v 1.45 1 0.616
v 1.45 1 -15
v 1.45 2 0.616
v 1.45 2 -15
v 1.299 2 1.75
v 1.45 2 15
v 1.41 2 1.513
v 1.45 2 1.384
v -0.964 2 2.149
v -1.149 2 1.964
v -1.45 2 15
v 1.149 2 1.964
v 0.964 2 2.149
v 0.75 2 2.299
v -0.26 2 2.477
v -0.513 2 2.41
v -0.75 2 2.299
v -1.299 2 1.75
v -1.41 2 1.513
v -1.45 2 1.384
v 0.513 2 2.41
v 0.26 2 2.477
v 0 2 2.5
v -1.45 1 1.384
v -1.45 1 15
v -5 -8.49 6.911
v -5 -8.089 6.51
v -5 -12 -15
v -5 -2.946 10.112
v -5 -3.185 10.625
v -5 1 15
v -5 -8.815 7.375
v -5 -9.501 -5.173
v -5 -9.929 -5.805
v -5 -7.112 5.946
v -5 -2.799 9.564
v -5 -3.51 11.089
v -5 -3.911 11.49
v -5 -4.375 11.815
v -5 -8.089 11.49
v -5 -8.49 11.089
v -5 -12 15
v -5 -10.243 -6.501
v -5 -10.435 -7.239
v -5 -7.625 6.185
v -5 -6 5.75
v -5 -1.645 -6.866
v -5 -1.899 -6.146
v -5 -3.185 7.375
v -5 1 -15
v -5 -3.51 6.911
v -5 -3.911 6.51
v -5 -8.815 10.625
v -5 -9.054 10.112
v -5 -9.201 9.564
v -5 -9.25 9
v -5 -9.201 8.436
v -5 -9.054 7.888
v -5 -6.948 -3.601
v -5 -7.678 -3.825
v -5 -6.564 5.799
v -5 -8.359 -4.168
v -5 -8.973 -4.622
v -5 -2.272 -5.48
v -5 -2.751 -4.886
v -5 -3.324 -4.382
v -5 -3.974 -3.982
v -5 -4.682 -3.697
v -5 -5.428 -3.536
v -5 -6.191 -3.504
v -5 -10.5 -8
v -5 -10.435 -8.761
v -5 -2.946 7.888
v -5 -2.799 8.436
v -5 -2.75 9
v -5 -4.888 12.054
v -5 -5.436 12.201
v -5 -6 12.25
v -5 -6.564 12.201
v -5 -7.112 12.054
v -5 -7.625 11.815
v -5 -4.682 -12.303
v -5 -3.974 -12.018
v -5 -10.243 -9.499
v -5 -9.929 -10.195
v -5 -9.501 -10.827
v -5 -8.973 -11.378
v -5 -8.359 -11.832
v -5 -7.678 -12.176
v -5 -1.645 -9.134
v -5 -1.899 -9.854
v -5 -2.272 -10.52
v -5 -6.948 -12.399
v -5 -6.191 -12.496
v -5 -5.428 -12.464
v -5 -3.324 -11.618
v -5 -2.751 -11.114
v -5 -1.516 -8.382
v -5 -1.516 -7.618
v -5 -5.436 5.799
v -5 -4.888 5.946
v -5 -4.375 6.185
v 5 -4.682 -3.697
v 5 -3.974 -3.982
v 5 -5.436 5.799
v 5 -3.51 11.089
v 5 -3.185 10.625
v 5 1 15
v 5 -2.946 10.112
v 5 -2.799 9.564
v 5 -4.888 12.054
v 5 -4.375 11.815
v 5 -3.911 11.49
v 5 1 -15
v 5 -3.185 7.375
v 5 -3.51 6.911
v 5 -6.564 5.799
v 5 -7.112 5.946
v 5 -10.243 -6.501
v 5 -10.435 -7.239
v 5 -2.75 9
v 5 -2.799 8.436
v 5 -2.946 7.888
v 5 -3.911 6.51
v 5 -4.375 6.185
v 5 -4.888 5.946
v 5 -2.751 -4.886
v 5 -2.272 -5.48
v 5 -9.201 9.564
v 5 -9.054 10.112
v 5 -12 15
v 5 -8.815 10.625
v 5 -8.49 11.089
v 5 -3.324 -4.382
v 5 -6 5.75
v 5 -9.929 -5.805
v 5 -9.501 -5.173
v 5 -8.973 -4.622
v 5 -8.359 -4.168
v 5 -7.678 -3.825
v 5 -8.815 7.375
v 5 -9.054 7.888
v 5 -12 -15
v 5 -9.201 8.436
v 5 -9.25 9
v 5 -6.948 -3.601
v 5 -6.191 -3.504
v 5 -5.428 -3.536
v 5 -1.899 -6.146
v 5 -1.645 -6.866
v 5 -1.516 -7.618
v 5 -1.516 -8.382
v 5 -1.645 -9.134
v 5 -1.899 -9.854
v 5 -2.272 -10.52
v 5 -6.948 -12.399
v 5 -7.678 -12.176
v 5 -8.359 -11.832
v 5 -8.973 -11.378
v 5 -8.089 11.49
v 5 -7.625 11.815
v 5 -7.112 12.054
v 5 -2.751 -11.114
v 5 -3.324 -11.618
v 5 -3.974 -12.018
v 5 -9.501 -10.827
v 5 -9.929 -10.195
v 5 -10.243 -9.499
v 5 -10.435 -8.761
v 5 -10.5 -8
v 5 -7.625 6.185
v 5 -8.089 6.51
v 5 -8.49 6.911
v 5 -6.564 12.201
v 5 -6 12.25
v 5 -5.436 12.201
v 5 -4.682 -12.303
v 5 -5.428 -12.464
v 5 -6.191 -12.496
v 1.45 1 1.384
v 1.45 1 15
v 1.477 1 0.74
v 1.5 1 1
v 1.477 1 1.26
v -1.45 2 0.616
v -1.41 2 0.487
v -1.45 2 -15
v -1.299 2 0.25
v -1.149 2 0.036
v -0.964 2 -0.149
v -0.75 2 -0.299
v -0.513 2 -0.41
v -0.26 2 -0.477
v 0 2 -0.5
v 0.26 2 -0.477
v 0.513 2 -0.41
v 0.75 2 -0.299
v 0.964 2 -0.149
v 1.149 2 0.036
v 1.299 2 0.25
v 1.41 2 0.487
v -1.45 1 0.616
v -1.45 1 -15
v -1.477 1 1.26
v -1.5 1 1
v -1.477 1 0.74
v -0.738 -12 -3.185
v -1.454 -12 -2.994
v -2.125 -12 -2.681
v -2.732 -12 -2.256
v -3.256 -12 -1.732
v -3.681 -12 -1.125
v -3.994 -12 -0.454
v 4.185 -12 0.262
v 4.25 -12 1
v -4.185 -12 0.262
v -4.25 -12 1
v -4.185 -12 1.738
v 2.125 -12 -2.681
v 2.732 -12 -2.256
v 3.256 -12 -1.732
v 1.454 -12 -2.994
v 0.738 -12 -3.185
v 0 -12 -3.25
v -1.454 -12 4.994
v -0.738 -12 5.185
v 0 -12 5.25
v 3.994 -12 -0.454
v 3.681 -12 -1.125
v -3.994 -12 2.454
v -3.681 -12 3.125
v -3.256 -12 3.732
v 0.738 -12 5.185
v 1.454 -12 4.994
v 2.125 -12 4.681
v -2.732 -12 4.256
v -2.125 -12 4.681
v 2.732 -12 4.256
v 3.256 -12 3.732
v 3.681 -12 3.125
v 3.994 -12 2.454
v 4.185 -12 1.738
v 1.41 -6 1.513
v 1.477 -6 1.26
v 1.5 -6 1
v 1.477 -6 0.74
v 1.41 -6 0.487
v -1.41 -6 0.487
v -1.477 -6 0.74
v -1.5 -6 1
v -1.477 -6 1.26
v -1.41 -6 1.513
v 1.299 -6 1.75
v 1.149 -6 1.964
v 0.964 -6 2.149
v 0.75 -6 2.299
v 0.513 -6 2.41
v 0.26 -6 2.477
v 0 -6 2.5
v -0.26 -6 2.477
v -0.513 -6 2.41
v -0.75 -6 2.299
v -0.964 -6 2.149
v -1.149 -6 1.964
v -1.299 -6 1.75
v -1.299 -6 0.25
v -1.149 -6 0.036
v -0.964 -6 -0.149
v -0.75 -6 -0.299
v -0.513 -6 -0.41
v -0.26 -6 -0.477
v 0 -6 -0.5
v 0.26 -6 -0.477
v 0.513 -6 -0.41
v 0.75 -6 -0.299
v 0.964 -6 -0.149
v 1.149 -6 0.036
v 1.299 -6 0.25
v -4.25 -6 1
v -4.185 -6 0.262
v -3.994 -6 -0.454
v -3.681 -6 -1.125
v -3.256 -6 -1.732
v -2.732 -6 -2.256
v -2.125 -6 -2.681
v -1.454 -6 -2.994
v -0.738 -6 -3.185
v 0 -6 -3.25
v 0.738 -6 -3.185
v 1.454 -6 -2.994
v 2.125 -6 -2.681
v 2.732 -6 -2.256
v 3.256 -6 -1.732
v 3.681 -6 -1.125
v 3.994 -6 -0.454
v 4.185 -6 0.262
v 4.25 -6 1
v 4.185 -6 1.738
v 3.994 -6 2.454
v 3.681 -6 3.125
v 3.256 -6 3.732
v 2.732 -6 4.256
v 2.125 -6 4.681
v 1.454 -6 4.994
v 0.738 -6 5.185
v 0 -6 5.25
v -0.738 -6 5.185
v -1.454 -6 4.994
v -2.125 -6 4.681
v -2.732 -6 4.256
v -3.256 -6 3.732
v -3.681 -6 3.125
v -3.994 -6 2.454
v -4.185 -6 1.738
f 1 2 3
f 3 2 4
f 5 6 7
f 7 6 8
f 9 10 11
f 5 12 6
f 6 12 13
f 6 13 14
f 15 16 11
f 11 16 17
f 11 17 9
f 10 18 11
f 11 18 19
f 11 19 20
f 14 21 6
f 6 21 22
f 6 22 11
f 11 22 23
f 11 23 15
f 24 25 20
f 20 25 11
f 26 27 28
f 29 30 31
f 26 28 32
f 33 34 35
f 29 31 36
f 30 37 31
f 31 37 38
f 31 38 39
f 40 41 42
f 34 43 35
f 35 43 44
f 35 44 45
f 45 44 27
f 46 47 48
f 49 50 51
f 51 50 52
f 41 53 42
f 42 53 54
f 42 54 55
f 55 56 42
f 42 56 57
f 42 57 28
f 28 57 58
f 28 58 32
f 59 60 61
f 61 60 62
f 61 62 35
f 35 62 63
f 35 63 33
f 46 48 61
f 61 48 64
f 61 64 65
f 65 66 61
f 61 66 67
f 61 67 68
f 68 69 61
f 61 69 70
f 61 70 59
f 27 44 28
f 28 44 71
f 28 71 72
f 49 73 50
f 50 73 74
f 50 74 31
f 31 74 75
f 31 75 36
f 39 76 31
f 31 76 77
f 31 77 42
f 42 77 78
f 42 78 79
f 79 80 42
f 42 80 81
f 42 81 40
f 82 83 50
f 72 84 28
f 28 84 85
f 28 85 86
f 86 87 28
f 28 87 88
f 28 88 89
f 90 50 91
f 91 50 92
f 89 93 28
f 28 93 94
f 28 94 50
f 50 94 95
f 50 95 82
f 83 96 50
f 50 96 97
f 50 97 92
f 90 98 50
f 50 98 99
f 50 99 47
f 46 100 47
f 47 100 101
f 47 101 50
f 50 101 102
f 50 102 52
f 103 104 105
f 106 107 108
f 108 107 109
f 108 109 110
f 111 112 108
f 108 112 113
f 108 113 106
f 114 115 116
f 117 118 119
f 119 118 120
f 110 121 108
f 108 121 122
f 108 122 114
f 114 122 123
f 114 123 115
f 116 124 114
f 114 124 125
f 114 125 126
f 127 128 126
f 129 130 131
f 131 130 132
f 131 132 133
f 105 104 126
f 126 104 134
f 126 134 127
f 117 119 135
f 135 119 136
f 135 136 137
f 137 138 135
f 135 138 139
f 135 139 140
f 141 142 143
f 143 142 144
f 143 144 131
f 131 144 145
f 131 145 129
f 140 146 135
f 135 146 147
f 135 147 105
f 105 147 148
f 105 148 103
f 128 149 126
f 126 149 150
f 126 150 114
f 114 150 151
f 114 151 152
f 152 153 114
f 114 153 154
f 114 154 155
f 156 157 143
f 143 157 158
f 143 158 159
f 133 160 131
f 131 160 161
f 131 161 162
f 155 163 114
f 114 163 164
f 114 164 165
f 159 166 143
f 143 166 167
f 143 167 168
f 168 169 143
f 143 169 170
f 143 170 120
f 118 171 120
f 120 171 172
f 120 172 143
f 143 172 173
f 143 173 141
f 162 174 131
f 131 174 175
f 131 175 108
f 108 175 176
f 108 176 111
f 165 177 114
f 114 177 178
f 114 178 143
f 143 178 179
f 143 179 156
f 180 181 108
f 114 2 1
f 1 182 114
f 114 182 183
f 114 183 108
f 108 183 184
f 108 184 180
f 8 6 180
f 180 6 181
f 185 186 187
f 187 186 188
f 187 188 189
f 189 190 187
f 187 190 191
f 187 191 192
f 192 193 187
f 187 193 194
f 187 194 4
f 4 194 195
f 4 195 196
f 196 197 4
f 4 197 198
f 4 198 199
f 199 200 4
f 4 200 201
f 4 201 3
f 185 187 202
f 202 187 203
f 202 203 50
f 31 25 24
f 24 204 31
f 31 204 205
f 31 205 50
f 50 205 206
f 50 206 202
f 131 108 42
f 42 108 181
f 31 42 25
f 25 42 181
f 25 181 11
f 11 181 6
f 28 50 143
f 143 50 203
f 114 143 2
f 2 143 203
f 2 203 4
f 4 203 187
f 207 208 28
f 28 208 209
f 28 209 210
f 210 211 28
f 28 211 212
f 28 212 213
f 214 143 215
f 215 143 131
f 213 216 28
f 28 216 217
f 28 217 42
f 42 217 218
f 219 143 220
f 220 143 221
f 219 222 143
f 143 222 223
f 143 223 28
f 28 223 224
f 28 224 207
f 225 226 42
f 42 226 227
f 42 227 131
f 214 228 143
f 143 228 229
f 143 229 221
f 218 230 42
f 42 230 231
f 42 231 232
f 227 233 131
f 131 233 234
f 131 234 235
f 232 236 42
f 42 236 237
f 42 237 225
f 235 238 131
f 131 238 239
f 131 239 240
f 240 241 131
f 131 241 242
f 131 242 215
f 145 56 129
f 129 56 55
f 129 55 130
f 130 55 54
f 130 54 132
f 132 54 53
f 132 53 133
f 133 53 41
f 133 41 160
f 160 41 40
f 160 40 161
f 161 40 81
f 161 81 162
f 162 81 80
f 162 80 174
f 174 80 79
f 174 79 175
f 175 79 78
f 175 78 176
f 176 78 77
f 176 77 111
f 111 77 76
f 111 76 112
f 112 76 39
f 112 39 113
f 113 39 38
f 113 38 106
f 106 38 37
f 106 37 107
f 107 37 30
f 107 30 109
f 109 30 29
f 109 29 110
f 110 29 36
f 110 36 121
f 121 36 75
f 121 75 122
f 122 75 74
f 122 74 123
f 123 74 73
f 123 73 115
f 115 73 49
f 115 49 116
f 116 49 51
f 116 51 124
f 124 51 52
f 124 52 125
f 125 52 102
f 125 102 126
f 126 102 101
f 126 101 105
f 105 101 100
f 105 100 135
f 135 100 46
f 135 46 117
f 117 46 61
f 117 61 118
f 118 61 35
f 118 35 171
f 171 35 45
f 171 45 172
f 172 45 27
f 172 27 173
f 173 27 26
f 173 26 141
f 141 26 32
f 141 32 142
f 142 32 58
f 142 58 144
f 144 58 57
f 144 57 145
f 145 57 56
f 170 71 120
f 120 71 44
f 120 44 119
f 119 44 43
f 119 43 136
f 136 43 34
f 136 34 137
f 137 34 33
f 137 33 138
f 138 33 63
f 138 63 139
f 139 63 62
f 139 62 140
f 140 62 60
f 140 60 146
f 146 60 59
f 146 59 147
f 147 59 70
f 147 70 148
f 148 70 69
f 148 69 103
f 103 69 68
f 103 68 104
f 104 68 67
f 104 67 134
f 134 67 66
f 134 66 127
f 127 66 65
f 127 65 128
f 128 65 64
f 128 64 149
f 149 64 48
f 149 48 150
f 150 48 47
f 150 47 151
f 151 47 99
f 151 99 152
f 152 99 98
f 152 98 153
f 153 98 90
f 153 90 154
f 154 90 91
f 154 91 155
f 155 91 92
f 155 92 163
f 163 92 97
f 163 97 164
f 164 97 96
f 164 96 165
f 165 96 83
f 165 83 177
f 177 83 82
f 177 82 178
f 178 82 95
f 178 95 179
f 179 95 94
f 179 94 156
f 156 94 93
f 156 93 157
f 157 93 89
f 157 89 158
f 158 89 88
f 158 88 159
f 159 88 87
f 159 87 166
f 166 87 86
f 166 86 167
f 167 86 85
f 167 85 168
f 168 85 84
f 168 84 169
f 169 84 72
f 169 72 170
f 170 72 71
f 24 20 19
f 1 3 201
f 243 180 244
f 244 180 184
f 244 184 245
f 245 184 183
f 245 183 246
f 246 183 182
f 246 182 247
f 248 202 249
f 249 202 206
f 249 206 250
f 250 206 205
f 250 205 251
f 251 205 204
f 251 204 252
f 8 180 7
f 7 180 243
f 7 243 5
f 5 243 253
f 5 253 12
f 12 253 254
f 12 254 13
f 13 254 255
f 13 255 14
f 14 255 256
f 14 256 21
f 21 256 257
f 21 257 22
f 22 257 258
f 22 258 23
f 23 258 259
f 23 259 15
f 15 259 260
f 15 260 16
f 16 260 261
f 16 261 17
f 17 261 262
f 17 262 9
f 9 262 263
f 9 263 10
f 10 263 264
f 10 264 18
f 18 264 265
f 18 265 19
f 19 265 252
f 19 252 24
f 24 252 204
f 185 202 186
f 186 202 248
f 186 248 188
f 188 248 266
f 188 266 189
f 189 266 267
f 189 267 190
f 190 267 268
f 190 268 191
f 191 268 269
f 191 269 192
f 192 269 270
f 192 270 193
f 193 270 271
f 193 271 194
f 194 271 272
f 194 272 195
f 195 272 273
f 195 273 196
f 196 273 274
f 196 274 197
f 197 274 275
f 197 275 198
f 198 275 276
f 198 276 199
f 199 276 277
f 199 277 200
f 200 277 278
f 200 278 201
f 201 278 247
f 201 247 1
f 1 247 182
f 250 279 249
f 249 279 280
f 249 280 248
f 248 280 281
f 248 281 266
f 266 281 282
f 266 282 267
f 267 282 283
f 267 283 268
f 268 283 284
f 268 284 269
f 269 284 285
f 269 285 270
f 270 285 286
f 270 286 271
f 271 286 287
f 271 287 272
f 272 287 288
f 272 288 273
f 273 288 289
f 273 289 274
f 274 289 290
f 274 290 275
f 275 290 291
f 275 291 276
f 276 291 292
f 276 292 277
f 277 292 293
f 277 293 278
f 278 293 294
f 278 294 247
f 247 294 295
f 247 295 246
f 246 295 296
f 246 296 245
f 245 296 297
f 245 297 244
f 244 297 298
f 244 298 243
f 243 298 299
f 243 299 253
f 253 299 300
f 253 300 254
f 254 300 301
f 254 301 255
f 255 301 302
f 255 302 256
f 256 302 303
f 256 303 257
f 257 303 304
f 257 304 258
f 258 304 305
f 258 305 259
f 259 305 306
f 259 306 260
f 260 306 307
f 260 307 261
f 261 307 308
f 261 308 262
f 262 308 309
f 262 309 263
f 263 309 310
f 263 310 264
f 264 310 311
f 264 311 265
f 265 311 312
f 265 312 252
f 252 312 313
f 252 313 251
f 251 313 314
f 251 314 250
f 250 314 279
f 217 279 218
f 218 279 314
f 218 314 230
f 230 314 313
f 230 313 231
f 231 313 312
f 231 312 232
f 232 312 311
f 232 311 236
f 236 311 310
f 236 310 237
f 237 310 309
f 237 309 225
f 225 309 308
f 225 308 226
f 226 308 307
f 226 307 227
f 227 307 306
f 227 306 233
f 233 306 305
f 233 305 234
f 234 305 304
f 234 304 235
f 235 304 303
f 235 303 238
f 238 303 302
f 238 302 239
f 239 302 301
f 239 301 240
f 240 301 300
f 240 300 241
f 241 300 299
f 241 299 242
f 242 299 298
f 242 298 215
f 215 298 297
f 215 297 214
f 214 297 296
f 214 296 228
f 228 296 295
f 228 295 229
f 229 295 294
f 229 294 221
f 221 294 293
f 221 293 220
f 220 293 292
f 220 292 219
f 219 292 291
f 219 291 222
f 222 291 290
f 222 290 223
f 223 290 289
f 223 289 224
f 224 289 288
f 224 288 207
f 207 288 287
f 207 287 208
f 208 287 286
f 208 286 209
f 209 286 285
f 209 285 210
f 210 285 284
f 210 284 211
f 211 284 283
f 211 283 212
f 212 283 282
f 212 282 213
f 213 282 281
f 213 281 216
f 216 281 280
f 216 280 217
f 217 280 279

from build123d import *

# Parameters (mm, degrees)
MAKERBEAMFIX_DEPTH              = 15
SKETCH3_W                       = 30
SKETCH3_H                       = 12
SKETCH3_R                       = 3.25
SKETCH3_R_2                     = 4.5
DRILLKEYANDSMALLHEXDRIVER_DEPTH = 10
SKETCH4_R                       = 1.5
FIXINGHOLE_DEPTH                = 15
SKETCH5_R                       = 4.25
DRIVERHOLE_DEPTH                = 7


with BuildPart() as part:
    # Sketch1 → MakerBeamFix (new body, symmetric)
    with BuildSketch(Plane.XY):
        Polygon((-5, 0), (5, 0), (5, 1), (1.45, 1), (1.45, 2), (-1.45, 2), (-1.45, 1), (-5, 1), align=None)
    extrude(amount=MAKERBEAMFIX_DEPTH, both=True)

    # Sketch3 → DrillKeyAndSmallHexDriver (add)
    with BuildSketch(Plane.ZY.offset(5)):
        with Locations((0, -6)):
            Rectangle(SKETCH3_W, SKETCH3_H)
        with Locations((9, -6)):
            Circle(SKETCH3_R, mode=Mode.SUBTRACT)
        with Locations((-8, -6)):
            Circle(SKETCH3_R_2, mode=Mode.SUBTRACT)
    extrude(amount=-DRILLKEYANDSMALLHEXDRIVER_DEPTH)

    # Sketch4 → FixingHole (cut, through all)
    with BuildSketch(Plane.XZ.offset(12)):
        with Locations((0, 1)):
            Circle(SKETCH4_R)
    extrude(amount=-FIXINGHOLE_DEPTH, mode=Mode.SUBTRACT)

    # Sketch5 → DriverHole (cut, through all)
    with BuildSketch(Plane(origin=(0, -6, 0), x_dir=(1, 0, 0), z_dir=(0, 1, 0))):
        with Locations((0, -1)):
            Circle(SKETCH5_R)
    extrude(amount=-DRIVERHOLE_DEPTH, mode=Mode.SUBTRACT)


solid = part.part
